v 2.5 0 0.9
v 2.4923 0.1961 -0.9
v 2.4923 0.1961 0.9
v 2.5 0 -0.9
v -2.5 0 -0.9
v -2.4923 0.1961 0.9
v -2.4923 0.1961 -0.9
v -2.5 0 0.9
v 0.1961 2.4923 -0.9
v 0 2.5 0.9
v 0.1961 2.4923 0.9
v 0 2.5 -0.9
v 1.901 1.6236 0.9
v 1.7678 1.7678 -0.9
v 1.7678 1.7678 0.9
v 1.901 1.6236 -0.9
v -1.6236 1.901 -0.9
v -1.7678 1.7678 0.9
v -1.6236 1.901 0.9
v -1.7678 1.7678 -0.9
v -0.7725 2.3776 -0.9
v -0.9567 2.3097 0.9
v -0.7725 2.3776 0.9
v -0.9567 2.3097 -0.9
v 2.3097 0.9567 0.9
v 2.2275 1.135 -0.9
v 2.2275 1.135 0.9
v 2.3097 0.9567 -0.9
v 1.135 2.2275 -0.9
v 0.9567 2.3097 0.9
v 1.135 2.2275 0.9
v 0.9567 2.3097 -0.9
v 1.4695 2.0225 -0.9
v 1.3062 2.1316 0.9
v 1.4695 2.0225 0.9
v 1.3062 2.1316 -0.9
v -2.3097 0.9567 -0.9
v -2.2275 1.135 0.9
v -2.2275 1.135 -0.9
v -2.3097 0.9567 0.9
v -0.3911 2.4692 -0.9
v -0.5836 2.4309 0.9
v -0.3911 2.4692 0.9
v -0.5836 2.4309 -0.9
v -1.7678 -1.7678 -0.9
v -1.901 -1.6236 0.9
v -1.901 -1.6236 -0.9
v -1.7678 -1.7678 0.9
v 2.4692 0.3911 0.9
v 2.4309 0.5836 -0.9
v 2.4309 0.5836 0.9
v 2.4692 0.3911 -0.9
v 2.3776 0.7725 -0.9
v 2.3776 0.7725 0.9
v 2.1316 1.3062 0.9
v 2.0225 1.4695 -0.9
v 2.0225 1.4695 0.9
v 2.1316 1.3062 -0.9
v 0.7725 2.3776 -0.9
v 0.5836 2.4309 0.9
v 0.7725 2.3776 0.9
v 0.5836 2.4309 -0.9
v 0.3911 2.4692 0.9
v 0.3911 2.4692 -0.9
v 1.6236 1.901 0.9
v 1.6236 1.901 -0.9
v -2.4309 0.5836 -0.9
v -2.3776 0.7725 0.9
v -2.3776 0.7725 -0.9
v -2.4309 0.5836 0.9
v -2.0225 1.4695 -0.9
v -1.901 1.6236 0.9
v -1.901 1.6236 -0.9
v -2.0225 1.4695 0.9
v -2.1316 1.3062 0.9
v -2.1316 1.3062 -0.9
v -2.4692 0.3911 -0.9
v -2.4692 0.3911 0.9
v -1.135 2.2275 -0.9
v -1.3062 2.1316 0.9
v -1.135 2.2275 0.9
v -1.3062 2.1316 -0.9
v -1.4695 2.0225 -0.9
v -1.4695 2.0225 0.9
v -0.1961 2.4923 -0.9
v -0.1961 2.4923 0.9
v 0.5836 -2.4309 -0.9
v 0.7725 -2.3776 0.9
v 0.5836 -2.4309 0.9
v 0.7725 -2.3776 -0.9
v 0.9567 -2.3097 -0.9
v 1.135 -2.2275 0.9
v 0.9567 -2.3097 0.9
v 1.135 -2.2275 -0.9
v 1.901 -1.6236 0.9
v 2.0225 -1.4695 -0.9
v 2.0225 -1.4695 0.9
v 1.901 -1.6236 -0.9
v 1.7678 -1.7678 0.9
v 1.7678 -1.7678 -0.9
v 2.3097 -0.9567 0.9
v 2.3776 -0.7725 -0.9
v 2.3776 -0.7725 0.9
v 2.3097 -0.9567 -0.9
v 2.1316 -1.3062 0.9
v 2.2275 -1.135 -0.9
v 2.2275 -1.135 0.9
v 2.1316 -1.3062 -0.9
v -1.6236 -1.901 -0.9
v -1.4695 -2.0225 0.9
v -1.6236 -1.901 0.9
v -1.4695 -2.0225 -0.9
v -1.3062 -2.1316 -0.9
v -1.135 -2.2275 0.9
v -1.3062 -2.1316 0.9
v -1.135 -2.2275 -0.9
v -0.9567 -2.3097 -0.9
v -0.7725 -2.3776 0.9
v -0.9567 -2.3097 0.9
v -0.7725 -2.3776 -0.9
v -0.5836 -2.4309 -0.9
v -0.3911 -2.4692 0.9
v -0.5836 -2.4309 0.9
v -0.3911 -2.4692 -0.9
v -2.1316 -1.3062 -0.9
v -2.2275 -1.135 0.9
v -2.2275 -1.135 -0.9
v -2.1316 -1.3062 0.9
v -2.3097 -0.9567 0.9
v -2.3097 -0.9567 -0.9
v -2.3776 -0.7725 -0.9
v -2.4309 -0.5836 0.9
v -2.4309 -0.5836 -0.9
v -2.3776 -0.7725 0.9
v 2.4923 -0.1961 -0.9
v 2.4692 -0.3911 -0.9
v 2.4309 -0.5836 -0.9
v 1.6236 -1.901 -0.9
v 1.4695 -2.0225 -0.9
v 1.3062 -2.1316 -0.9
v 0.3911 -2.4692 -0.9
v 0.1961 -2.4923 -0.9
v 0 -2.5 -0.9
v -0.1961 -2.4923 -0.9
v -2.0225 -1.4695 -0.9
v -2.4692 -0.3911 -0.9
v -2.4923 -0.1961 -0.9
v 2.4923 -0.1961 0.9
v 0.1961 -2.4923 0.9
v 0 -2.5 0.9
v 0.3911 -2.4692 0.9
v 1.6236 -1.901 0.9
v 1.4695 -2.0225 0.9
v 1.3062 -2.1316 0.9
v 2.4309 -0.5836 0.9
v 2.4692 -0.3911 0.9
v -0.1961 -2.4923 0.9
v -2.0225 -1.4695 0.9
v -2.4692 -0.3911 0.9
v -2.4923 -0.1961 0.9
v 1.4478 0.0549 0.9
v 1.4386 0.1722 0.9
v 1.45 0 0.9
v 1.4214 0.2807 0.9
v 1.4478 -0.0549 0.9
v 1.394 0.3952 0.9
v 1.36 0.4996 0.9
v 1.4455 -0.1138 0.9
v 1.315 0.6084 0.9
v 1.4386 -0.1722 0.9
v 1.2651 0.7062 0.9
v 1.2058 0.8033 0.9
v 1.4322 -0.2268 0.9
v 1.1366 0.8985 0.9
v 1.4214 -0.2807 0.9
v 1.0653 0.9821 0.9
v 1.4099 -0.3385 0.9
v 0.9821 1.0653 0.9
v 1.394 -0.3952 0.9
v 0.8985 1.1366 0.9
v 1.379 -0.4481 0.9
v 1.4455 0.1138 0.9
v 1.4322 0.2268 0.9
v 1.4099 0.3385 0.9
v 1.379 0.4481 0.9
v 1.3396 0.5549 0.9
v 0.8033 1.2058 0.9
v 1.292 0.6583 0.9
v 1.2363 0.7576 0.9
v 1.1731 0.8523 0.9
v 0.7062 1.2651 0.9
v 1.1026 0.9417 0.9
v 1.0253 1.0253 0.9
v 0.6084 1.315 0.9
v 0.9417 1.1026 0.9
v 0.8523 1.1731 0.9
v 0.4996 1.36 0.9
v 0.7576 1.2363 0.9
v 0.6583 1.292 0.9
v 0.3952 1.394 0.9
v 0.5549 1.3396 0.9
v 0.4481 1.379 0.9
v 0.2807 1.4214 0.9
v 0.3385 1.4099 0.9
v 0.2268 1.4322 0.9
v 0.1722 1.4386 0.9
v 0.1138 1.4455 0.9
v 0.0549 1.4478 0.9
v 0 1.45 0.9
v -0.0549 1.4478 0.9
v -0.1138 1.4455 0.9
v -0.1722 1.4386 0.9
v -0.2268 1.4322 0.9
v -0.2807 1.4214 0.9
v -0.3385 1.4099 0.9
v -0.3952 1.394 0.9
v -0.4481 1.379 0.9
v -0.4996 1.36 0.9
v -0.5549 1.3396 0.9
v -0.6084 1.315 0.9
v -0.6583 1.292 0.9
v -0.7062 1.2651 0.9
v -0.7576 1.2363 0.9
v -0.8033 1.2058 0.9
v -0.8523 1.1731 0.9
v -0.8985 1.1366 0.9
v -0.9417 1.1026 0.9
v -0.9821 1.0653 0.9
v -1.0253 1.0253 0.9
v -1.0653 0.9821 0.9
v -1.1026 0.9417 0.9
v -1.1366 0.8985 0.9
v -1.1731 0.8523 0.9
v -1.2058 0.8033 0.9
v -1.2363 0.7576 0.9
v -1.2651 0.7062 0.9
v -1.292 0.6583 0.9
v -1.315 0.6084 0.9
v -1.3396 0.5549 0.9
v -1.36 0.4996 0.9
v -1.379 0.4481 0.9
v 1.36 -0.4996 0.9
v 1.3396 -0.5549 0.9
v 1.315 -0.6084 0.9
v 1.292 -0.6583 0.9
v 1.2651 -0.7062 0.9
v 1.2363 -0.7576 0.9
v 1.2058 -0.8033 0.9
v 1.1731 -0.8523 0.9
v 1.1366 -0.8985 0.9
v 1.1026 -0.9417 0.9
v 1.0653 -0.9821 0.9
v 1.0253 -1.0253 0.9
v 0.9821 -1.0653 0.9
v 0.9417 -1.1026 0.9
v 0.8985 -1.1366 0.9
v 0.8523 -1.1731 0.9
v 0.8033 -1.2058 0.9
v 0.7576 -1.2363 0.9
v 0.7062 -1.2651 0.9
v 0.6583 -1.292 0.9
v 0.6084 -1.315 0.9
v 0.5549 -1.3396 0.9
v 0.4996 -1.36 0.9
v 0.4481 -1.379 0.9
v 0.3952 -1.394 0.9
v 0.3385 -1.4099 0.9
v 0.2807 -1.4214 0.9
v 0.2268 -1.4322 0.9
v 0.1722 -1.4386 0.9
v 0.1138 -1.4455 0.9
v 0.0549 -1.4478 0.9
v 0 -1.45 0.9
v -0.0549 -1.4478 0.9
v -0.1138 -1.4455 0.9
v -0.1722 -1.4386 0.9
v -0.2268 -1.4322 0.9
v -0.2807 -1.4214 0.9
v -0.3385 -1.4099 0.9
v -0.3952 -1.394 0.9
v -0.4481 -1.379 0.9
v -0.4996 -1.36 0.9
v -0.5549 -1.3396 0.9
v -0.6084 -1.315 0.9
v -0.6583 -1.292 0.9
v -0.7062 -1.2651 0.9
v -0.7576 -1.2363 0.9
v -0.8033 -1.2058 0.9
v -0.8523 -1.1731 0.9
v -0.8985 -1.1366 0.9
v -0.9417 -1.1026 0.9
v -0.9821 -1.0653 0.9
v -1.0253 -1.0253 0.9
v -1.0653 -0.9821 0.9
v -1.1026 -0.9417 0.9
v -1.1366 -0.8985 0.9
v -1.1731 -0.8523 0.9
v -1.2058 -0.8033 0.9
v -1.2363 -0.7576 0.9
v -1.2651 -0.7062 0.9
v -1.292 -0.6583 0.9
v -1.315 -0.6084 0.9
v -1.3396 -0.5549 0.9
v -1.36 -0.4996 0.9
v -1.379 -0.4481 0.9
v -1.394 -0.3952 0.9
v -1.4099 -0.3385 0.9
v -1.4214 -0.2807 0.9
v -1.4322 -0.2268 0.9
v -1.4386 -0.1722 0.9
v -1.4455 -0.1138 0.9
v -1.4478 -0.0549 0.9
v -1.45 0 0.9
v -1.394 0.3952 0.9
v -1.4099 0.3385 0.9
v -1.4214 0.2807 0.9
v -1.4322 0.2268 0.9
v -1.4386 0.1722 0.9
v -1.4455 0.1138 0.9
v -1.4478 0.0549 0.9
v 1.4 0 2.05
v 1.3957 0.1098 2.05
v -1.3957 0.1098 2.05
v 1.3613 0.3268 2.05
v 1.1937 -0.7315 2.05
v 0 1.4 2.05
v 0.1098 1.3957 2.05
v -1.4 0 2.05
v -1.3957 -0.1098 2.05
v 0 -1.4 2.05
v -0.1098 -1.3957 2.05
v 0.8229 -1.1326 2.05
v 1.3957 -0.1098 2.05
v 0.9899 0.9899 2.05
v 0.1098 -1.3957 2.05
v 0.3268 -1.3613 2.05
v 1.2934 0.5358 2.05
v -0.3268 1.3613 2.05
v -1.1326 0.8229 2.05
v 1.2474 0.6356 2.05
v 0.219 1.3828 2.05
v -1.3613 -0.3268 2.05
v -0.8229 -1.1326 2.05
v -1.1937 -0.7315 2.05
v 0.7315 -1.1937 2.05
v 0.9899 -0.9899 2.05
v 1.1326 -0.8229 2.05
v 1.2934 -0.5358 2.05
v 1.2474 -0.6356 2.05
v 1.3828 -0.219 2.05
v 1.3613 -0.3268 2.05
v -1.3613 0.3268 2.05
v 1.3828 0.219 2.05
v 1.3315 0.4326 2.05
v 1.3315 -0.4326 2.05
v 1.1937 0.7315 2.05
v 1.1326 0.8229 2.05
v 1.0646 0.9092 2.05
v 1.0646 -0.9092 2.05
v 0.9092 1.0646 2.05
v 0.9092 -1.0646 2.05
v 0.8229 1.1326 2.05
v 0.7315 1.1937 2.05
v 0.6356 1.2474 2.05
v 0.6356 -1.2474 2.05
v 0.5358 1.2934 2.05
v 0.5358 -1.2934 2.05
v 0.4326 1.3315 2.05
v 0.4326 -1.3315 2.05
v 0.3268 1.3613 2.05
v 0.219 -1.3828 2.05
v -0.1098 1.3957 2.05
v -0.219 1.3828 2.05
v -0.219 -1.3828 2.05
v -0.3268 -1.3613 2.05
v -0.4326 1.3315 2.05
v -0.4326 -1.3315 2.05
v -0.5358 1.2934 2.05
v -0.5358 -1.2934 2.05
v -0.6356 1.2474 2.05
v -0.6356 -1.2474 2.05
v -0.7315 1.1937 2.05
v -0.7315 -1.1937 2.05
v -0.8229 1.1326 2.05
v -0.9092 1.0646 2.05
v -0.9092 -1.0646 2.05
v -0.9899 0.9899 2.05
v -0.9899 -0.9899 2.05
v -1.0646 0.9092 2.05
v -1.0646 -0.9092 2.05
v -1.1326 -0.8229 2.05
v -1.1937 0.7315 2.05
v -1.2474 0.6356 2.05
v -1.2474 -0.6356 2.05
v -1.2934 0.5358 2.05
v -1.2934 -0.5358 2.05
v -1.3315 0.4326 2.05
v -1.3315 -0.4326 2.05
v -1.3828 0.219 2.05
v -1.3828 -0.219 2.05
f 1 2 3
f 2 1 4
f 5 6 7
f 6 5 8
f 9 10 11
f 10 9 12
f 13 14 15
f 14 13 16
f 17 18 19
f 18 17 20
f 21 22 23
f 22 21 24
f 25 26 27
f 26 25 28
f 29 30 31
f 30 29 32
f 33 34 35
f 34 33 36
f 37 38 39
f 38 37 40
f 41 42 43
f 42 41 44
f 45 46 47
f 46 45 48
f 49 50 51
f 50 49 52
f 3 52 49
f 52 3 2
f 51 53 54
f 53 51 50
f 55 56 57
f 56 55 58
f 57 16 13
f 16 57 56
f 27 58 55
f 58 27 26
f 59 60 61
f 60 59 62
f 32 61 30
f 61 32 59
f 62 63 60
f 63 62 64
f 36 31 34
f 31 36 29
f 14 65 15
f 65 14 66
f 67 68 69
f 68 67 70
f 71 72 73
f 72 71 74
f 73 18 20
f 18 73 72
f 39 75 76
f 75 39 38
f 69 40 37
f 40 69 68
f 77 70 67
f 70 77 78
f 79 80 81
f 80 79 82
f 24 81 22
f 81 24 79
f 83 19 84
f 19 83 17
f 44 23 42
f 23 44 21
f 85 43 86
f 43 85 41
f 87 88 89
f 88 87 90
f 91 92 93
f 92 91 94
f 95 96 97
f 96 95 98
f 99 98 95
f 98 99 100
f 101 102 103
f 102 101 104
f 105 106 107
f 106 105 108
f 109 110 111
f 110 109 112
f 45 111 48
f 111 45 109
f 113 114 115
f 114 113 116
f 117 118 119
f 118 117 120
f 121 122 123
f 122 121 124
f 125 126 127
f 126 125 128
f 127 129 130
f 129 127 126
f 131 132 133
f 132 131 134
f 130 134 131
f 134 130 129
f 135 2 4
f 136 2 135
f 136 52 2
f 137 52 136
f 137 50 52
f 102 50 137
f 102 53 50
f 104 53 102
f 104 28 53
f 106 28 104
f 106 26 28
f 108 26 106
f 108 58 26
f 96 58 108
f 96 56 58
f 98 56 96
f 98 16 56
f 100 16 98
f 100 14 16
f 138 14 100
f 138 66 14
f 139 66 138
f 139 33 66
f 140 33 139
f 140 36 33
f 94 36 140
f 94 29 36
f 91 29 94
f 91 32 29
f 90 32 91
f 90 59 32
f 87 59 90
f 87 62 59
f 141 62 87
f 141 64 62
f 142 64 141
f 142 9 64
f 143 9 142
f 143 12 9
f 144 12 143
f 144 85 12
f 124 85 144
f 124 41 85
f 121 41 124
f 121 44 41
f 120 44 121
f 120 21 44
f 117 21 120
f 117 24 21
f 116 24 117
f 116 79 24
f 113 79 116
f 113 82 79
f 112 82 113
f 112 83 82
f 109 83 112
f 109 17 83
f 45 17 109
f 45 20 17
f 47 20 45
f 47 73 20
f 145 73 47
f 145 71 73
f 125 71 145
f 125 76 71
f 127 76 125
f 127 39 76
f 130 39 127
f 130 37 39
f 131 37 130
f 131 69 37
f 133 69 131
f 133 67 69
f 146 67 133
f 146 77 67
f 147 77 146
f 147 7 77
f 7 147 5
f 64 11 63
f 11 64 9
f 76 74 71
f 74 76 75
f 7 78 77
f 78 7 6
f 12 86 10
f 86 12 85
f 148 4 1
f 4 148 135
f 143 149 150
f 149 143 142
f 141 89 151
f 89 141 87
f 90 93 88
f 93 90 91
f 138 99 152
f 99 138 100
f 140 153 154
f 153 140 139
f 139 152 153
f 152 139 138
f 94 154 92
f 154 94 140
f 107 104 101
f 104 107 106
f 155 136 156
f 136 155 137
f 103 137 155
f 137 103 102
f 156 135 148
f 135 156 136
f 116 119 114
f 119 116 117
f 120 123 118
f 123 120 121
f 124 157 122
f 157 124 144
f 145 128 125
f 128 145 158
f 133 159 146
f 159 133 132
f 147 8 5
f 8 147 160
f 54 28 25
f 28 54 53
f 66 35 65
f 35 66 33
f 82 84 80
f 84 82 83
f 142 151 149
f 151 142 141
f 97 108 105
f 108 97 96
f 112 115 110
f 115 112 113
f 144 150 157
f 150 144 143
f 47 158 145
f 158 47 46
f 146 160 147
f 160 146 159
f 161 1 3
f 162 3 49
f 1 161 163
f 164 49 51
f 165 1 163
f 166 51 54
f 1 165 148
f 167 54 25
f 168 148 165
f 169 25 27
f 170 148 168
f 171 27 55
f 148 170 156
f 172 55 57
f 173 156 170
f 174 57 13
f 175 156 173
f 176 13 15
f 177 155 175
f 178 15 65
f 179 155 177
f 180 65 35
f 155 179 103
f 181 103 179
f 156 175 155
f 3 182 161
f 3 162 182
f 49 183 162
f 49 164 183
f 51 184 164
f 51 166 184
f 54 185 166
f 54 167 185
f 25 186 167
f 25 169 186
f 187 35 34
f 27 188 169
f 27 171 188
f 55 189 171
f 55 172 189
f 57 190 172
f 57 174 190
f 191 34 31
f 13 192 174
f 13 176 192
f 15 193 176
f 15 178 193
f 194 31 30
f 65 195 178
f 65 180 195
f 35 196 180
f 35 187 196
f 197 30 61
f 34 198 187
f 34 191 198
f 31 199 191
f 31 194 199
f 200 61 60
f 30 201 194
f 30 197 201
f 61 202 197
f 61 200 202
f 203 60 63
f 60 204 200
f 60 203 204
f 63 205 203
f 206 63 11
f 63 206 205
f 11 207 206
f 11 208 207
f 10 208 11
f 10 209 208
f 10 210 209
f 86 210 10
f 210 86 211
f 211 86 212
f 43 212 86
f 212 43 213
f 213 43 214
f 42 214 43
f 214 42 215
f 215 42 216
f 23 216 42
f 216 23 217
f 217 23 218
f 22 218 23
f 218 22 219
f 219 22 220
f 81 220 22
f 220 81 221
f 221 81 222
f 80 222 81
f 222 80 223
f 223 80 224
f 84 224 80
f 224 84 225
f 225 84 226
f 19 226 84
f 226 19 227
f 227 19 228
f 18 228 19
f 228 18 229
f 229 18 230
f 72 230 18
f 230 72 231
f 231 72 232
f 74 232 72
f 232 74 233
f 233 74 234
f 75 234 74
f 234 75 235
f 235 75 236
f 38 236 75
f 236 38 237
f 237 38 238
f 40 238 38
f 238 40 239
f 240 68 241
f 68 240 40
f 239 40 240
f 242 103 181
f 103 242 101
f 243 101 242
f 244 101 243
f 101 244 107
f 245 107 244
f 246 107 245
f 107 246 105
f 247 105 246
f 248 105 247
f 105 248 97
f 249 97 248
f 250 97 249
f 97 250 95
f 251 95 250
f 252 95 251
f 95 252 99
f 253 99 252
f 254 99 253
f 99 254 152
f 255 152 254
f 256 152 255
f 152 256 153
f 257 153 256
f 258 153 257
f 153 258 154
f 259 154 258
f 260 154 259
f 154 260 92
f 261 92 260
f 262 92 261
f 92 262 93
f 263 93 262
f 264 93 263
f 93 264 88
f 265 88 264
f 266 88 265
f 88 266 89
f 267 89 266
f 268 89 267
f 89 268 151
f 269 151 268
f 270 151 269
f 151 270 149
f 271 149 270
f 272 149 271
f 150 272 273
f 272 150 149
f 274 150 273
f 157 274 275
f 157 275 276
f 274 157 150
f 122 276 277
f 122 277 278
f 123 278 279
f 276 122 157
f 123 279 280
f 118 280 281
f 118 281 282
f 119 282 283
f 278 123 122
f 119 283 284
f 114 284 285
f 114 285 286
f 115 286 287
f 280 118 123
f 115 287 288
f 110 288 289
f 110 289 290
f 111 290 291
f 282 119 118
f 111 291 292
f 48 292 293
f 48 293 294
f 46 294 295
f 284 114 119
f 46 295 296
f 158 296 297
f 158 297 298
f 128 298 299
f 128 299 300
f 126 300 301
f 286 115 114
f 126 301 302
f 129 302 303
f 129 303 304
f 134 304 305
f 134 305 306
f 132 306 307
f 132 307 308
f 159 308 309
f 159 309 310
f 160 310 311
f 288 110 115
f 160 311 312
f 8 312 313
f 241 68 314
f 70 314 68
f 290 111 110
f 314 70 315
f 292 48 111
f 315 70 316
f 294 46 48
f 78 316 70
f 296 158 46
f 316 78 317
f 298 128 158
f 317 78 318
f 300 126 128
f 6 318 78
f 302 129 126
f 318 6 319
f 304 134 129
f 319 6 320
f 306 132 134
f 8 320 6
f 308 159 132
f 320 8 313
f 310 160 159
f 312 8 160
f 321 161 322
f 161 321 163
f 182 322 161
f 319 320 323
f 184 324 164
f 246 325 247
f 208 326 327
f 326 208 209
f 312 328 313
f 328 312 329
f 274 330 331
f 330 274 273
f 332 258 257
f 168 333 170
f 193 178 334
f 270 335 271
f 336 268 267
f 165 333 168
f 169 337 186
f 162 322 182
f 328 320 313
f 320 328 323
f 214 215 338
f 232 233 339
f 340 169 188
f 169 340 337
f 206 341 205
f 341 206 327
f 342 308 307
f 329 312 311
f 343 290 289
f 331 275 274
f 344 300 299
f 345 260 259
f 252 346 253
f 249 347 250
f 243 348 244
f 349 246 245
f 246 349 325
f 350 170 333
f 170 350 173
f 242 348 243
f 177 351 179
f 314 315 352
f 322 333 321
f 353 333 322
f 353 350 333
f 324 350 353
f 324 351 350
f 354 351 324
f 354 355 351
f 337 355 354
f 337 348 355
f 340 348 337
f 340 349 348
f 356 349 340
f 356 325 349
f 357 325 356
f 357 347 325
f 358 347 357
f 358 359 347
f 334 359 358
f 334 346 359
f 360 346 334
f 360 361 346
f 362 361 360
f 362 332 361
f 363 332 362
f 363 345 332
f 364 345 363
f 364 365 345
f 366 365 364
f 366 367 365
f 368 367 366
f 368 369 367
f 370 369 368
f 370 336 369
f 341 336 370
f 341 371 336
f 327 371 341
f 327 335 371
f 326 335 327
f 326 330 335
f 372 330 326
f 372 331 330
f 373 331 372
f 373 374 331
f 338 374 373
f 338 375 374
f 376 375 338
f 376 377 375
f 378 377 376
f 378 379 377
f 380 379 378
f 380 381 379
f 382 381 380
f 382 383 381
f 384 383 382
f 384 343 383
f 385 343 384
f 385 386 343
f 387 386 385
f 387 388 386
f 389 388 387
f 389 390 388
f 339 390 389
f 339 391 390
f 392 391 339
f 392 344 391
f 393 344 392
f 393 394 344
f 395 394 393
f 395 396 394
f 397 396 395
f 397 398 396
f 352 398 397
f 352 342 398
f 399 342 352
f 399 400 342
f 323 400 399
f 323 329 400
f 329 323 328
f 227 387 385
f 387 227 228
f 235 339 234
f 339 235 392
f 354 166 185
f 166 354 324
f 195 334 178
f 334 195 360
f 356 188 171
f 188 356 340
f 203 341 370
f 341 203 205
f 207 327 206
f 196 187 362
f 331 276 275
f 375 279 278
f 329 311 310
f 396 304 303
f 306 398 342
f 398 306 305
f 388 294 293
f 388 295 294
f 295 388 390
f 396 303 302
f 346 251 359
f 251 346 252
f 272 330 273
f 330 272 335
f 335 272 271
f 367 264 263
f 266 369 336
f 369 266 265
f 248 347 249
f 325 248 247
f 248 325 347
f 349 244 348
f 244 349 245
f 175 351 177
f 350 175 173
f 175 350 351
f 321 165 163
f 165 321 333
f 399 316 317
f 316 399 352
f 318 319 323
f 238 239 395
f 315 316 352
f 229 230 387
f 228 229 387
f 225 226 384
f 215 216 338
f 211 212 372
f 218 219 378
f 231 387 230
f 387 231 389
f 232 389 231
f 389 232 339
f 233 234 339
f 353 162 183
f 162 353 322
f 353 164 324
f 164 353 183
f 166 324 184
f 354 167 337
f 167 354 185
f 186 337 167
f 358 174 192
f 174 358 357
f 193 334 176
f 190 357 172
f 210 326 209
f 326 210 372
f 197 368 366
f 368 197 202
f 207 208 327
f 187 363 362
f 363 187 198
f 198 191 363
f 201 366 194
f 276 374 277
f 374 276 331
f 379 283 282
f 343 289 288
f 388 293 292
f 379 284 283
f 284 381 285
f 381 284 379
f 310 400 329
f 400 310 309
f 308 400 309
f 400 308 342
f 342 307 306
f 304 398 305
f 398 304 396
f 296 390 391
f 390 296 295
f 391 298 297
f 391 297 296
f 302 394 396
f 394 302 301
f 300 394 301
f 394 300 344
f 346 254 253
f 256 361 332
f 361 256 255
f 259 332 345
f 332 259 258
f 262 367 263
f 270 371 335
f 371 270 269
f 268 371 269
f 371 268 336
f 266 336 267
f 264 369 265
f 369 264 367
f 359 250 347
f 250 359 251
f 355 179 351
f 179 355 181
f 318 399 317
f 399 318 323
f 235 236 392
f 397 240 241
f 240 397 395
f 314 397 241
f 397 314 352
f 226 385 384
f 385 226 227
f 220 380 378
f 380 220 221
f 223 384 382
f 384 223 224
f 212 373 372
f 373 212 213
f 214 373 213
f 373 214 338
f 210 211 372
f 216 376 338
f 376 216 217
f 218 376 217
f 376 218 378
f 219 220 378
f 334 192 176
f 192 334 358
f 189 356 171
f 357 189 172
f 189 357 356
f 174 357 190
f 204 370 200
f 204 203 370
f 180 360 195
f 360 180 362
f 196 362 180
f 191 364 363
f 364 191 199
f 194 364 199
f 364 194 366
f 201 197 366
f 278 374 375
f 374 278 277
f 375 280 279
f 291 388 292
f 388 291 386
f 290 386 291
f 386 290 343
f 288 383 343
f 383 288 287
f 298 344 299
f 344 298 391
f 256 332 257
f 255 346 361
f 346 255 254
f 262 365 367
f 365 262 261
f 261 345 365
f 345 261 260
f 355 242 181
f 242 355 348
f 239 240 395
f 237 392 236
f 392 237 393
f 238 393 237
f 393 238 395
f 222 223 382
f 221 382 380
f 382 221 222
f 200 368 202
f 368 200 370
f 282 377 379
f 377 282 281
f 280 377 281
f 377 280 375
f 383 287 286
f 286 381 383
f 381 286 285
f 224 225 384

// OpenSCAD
//Platinen Pin 

$fn=80;
Rgr = 2.5;  //Radius PIN 
R1kl = 1.5; //Radius 1 Stift
R2kl = 1.4; //Radius 2 Stift
Sh = 1.8;     //Sockelhöhe

color("WhiteSmoke")
cylinder(h = Sh, r1=Rgr , r2=Rgr , center = true); //Sockel
translate(v = [0, 0, Sh/2])
color("WhiteSmoke")
cylinder(h = 2.3, r1 = R1kl, r2 = R2kl, center = true); //Pin
